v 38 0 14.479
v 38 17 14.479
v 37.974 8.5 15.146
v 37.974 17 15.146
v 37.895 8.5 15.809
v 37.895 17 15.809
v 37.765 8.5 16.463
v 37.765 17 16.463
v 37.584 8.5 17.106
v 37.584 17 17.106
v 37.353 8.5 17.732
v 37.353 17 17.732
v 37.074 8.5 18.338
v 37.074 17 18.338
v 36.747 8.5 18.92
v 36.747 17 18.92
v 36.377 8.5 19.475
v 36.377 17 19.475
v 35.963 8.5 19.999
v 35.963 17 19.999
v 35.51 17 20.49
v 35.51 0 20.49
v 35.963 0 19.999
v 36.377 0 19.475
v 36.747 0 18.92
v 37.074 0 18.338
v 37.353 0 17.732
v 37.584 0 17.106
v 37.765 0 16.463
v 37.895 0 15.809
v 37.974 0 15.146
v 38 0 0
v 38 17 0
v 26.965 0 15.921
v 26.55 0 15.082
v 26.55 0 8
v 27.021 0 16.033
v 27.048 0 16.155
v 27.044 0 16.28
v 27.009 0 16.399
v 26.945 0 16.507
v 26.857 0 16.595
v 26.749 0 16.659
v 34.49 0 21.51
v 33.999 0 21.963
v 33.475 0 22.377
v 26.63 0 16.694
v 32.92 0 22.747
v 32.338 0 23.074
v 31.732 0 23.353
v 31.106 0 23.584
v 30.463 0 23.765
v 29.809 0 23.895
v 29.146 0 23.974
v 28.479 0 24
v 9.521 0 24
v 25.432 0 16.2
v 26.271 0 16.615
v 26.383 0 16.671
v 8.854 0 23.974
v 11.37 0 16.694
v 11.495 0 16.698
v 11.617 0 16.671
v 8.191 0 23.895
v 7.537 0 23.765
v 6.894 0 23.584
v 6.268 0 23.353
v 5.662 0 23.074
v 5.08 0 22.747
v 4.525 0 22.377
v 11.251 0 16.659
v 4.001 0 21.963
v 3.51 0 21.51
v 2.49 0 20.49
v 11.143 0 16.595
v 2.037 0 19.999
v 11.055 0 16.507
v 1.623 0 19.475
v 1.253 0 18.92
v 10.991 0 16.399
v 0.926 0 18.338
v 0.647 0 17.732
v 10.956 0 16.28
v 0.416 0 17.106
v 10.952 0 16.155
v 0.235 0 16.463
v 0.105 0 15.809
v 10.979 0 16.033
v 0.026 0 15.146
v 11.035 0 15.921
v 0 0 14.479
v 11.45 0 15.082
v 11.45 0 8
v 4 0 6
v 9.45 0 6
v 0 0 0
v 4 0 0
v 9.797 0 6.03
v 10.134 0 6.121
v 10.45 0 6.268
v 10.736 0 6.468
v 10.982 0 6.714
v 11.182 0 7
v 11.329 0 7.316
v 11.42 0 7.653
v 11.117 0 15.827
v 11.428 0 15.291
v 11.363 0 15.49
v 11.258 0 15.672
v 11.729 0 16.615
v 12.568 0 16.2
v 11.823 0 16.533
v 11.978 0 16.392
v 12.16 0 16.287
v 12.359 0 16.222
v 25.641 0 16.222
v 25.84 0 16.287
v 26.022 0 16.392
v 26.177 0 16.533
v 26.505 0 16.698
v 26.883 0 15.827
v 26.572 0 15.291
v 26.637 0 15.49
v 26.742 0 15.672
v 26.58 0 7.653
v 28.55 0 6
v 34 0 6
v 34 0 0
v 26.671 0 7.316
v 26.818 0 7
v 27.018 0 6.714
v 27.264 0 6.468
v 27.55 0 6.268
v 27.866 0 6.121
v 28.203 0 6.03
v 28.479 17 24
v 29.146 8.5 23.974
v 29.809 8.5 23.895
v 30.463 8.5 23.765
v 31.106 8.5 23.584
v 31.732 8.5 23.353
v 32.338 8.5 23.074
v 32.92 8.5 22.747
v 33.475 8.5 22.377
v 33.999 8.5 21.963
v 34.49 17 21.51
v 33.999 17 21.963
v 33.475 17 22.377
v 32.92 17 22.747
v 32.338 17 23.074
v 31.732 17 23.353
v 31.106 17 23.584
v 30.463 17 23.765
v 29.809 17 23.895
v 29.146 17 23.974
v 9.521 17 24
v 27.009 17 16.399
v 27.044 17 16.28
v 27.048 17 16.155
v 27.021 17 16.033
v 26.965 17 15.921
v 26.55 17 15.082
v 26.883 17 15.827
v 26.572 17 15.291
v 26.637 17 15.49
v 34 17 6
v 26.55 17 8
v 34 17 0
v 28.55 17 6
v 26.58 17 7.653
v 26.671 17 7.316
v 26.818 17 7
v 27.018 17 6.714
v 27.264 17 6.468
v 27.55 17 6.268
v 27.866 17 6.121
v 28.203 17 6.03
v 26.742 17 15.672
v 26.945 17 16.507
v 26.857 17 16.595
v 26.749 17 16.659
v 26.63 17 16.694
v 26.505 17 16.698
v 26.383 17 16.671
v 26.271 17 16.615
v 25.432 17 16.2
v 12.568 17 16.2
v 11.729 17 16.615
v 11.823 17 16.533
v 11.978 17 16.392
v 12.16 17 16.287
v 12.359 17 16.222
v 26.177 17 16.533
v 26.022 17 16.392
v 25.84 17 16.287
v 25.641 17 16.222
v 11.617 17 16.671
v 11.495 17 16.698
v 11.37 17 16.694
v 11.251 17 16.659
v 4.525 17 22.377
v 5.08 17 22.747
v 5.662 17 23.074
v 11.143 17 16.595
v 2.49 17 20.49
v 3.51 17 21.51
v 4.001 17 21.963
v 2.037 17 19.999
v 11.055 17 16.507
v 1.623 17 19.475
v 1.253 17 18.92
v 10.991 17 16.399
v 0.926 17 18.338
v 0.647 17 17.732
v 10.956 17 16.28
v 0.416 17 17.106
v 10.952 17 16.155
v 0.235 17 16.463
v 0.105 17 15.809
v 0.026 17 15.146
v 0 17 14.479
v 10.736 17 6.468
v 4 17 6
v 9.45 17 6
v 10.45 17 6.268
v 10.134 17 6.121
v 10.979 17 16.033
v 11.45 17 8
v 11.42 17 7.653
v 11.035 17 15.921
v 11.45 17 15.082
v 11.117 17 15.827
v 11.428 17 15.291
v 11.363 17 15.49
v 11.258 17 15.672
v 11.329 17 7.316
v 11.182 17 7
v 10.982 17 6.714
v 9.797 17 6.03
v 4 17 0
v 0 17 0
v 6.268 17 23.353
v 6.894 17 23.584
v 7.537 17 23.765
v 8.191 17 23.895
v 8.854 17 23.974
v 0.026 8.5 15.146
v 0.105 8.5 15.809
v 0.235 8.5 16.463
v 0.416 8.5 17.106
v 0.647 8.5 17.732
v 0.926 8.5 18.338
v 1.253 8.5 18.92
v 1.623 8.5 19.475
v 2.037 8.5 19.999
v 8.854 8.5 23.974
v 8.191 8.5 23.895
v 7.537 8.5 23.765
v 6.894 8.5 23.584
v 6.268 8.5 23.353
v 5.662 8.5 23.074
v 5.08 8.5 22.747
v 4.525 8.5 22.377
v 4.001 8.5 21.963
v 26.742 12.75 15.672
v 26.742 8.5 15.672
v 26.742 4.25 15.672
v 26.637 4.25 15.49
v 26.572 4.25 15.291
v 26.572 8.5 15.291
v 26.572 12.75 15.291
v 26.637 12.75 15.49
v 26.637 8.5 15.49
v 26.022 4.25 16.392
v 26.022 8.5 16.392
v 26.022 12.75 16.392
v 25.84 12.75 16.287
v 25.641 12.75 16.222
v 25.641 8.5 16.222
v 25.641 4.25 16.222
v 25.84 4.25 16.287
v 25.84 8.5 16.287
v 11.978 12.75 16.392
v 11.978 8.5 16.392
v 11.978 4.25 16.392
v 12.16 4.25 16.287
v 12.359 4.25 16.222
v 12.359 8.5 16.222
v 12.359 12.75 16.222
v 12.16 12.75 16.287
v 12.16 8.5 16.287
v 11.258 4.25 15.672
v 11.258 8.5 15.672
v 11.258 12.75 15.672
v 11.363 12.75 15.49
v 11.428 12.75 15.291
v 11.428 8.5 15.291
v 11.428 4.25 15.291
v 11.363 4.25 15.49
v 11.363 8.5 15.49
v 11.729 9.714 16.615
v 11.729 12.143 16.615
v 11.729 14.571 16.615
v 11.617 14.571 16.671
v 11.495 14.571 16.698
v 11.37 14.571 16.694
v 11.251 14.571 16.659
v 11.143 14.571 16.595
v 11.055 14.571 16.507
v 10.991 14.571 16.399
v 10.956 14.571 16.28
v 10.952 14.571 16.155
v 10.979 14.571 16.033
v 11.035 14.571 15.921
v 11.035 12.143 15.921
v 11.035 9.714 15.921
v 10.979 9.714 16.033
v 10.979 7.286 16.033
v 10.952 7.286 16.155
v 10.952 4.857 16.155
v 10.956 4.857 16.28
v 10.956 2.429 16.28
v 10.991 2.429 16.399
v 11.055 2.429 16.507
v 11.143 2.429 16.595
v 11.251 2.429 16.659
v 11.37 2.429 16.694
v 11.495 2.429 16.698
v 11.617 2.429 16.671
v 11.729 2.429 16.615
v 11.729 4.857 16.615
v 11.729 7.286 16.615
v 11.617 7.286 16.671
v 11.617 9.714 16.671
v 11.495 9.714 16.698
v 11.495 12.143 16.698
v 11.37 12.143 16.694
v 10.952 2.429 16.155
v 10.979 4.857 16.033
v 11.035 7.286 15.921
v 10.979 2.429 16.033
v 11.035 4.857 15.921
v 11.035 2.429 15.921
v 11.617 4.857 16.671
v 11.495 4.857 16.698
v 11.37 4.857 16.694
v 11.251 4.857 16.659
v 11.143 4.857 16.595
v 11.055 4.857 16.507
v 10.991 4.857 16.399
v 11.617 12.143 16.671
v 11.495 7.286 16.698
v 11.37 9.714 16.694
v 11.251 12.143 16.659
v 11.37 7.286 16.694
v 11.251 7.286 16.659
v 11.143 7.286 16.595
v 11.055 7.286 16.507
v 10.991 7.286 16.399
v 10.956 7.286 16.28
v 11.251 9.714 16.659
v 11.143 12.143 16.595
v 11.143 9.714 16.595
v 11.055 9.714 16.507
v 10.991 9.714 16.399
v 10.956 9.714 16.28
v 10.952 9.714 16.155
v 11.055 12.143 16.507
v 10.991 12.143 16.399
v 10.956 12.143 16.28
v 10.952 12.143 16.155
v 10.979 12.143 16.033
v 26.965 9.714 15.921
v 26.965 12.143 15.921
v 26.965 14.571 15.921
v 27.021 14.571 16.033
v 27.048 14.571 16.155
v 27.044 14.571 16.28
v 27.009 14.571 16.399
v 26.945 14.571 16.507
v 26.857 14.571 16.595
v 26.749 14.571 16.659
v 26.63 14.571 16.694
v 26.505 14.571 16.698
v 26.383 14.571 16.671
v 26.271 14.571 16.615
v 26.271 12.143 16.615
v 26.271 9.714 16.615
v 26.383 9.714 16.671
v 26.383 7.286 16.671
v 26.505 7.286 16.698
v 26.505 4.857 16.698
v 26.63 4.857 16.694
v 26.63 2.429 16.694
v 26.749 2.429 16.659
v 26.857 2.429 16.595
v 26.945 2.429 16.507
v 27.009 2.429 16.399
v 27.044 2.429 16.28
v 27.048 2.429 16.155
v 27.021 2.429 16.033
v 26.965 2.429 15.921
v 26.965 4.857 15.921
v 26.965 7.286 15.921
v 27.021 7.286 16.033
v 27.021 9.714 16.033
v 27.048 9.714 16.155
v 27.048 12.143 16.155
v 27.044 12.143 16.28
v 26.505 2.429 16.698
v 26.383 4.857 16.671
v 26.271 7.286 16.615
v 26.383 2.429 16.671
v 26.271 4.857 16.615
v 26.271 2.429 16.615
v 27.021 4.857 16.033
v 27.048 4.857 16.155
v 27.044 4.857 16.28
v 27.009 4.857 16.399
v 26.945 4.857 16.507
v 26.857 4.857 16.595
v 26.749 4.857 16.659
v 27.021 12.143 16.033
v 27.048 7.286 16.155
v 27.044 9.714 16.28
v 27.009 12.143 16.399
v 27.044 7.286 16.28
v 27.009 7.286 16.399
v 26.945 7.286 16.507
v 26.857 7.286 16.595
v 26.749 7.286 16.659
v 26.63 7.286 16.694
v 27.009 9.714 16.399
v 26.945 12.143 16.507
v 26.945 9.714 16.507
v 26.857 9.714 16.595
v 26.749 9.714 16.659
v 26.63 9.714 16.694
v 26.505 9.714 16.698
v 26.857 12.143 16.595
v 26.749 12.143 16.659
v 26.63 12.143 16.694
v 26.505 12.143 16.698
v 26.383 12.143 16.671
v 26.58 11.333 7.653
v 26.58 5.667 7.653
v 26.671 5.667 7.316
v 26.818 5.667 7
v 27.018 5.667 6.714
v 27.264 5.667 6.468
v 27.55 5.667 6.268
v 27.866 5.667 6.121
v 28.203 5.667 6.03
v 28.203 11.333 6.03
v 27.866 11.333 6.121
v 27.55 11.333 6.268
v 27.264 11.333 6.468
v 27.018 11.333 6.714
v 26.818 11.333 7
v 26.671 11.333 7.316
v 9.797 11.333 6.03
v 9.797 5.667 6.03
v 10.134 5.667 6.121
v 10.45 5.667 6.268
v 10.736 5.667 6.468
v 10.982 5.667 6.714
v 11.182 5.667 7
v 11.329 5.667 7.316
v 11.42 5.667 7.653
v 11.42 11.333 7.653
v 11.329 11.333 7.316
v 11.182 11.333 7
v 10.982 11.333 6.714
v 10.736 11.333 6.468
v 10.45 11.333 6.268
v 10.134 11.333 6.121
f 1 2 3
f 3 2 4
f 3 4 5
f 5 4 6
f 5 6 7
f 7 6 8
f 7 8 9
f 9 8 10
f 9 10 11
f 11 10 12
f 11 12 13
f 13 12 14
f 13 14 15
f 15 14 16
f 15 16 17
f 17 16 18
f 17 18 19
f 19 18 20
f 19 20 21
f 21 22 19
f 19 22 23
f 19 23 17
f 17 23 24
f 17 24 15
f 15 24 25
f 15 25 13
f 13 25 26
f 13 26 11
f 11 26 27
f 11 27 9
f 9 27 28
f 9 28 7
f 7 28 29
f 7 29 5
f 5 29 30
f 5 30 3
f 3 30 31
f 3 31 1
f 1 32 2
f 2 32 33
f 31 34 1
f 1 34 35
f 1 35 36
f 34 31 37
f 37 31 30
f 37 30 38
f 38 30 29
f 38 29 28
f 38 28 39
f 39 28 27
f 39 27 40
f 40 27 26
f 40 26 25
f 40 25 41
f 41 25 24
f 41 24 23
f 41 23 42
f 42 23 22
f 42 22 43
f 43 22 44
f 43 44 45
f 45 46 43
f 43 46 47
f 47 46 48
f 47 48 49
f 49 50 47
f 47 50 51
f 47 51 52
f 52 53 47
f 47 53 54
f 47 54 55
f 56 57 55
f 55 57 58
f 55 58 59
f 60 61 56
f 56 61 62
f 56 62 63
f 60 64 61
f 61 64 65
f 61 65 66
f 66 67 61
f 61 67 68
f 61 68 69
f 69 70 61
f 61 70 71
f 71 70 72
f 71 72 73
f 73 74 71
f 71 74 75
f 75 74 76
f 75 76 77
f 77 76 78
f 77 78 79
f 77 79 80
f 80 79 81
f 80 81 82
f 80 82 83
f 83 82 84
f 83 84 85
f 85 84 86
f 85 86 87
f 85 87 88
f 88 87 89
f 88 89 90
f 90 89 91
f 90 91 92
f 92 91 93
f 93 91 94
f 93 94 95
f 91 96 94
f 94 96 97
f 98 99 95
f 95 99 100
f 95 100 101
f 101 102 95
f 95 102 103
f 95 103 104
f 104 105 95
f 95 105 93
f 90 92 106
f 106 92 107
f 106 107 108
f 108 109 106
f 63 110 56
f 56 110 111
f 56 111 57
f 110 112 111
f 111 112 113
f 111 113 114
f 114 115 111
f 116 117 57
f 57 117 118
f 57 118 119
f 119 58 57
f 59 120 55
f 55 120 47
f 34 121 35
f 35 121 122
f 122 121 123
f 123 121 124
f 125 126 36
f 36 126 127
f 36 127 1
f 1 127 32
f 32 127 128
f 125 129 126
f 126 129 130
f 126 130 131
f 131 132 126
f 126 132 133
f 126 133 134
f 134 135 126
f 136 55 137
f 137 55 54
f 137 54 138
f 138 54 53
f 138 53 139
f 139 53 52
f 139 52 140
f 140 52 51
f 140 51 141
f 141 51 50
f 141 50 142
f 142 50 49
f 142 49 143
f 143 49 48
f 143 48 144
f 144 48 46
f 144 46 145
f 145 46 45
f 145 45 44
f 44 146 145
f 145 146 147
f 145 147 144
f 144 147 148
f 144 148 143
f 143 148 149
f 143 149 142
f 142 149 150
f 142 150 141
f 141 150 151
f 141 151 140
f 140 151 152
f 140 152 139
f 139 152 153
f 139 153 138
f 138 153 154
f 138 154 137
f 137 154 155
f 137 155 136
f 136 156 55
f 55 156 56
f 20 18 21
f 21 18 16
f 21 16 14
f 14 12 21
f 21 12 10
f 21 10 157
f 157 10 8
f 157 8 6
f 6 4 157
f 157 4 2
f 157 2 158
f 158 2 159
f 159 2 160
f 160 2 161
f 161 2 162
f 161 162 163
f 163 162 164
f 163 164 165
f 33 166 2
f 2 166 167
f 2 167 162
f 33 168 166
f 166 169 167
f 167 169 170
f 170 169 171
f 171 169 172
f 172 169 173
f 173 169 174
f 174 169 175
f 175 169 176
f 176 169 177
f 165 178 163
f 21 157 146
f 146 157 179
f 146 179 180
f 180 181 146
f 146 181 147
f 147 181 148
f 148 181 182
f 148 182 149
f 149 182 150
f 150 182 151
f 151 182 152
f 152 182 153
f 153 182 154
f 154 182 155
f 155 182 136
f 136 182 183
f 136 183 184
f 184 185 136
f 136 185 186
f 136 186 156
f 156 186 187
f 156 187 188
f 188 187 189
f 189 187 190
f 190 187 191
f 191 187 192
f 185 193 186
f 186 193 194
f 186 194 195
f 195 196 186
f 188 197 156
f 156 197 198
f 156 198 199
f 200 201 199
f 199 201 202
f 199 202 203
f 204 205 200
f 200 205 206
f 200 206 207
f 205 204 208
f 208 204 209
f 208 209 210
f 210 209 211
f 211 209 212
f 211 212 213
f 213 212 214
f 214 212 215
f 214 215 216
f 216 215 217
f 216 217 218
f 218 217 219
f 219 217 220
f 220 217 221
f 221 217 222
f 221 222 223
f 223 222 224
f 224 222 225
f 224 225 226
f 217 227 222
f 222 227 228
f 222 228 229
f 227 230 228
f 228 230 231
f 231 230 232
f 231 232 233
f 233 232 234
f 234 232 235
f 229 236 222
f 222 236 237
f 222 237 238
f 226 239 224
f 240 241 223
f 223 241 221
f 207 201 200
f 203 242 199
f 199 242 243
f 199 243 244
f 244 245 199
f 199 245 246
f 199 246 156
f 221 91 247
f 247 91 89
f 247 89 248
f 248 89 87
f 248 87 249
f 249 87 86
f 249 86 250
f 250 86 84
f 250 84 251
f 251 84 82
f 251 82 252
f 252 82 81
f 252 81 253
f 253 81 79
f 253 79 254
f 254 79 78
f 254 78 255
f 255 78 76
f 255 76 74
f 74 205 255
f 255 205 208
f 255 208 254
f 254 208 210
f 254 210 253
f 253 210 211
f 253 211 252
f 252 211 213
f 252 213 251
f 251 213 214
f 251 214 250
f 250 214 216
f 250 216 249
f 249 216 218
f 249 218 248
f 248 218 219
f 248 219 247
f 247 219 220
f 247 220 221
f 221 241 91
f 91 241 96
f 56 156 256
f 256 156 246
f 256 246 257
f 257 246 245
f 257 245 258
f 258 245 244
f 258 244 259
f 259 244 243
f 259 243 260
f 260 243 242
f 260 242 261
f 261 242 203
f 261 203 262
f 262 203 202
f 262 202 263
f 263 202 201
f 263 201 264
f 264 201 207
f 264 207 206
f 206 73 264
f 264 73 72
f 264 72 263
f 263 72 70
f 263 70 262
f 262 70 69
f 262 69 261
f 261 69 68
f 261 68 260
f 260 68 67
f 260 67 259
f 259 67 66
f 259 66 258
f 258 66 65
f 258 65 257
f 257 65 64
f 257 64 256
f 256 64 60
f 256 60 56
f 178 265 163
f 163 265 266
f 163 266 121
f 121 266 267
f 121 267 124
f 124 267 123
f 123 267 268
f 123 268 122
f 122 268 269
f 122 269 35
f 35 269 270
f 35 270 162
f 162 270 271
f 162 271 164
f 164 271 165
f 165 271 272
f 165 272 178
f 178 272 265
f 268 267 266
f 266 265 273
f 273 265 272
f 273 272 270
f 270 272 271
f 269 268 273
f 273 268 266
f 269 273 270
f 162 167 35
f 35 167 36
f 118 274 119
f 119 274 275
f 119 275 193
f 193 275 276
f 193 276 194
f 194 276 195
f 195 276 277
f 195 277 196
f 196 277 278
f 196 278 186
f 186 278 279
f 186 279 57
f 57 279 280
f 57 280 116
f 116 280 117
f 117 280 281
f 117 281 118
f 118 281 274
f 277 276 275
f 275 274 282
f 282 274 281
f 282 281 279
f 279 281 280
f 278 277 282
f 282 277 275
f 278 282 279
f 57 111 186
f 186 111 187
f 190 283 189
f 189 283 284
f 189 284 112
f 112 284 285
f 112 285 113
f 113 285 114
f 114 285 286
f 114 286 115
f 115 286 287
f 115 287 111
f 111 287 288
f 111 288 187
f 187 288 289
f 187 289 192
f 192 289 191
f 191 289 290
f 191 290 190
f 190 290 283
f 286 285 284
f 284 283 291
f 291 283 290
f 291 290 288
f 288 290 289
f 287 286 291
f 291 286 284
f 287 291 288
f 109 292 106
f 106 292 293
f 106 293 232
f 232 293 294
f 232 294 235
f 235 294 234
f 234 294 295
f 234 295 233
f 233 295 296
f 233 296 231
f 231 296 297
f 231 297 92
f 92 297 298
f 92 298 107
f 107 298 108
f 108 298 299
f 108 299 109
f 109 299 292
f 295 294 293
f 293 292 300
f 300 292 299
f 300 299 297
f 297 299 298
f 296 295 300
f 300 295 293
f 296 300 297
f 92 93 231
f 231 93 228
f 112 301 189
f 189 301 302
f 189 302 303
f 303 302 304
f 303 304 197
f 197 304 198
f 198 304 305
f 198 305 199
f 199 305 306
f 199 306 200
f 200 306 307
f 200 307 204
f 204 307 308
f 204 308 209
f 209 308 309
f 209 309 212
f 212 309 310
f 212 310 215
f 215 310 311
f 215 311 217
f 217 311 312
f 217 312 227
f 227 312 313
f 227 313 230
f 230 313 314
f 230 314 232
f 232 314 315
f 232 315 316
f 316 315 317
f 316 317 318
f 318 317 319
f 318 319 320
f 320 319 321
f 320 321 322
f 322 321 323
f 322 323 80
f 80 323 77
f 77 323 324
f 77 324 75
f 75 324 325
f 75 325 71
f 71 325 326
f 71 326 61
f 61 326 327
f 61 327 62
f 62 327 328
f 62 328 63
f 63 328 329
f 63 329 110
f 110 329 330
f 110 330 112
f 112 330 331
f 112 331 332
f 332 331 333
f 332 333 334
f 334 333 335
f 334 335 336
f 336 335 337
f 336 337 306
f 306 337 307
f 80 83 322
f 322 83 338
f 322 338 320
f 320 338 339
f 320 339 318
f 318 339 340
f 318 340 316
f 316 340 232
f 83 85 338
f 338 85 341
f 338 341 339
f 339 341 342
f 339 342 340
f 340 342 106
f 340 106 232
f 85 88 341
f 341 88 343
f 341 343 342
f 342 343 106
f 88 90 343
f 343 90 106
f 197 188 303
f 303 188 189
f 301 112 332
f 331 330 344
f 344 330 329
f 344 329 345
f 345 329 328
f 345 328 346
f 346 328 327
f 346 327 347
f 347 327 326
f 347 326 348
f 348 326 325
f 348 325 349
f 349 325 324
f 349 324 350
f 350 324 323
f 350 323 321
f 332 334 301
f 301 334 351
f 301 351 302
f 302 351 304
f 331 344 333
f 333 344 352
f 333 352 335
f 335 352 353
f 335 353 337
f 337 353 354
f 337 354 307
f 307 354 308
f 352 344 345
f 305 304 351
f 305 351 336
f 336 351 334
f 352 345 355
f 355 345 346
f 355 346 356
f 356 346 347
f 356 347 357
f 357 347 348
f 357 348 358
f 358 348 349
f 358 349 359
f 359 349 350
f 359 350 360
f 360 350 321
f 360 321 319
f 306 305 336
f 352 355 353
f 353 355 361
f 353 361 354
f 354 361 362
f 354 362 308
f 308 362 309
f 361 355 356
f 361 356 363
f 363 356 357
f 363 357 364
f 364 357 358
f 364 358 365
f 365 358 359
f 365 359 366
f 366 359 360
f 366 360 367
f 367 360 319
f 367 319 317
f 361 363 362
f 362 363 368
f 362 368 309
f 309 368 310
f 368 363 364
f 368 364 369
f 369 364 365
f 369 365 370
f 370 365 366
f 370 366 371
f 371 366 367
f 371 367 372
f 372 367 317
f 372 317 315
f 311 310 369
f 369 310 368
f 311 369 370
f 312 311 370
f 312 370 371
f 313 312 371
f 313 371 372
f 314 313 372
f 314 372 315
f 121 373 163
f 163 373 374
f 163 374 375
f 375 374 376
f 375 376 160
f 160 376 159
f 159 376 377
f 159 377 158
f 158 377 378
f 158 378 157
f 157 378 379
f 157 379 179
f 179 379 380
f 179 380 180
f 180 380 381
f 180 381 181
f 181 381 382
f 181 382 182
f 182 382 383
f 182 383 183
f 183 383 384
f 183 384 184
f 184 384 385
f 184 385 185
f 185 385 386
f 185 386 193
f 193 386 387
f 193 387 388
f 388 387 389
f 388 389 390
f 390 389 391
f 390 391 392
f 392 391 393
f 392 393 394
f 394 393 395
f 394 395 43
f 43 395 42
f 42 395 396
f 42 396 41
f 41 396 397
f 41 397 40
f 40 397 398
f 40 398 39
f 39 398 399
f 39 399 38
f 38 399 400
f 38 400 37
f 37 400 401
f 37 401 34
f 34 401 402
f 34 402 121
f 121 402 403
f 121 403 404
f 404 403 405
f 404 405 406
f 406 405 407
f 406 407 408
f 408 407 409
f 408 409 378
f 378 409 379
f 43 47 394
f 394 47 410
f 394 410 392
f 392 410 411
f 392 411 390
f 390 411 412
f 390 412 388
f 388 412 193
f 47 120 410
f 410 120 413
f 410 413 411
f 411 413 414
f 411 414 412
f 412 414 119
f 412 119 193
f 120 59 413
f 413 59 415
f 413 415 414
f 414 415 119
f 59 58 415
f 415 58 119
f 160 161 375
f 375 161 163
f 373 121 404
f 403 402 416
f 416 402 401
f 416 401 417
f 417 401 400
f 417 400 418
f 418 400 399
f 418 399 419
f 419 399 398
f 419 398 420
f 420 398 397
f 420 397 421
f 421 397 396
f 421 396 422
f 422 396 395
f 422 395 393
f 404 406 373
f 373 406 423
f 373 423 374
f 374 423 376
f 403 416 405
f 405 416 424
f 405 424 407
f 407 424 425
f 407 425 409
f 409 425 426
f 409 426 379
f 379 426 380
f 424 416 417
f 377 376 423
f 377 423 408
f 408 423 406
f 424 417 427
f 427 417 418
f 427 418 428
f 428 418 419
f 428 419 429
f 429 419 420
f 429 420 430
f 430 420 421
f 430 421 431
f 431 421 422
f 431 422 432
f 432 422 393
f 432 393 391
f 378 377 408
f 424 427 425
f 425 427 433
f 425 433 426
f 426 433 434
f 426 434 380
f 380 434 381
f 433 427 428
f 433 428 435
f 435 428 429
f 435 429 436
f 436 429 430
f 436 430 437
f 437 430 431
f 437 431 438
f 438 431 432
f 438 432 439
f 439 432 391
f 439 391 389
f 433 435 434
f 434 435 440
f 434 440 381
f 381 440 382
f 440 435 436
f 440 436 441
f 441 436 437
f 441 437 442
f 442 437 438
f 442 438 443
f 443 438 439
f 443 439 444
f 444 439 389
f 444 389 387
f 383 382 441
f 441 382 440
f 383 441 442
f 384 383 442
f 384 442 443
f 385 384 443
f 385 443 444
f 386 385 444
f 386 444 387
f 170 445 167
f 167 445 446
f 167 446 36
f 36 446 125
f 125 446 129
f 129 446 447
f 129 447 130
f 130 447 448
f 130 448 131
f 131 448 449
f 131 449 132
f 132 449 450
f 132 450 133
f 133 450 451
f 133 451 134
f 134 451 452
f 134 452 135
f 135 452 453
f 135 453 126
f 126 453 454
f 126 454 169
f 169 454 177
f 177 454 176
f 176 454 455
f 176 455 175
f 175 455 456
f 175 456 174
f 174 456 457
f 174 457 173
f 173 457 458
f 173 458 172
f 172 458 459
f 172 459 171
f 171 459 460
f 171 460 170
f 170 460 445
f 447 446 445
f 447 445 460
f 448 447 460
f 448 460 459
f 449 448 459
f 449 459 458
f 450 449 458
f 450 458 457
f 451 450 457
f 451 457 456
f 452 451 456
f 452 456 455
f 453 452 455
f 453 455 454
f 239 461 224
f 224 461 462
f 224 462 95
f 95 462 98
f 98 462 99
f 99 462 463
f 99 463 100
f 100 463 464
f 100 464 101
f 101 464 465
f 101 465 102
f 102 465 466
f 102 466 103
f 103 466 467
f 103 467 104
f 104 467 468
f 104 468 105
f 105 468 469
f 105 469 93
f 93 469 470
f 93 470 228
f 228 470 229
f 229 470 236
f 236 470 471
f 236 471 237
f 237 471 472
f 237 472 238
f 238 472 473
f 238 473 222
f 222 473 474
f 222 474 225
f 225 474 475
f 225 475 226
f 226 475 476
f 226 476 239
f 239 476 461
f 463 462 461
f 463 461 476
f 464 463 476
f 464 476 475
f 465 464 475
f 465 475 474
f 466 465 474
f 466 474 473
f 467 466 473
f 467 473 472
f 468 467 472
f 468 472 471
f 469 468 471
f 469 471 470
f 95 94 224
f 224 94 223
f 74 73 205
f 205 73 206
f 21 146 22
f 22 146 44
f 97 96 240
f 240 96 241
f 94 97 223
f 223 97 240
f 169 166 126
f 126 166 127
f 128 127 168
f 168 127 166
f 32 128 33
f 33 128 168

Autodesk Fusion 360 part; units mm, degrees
sketch "Sketch1" plane through (0, 0, 0) normal (0, 1, 0) x (1, 0, 0)
  line L0 (0, 0) -> (4, 0)
  line L1 (4, 0) -> (4, -6)
  line L2 (4, -6) -> (11.45, -6)
  line L3 (11.45, -6) -> (11.45, -16.2)
  line L4 (11.45, -16.2) -> (26.55, -16.2)
  line L5 (26.55, -16.2) -> (26.55, -6)
  line L6 (26.55, -6) -> (34, -6)
  line L7 (34, -6) -> (34, 0)
  line L8 (34, 0) -> (38, 0)
  line L9 (38, 0) -> (38, -24)
  line L10 (38, -24) -> (0, -24)
  line L11 (0, -24) -> (0, 0)
  dimension "d1" = 15.1
  dimension "d2" = 10.2
  dimension "d3" = 30
  dimension "d4" = 6
  dimension "d5" = 4
  dimension "d6" = 24
extrude "Extrude1" add sketch "Sketch1" along normal blind 17
chamfer "Chamfer1" distance 6 distance2 6 2 edges at (38, 8.5, 24) (0, 8.5, 24) measured on face at (25.3333, 5.6667, 24) measured on face at (0, 5.6667, 16)
fillet "Fillet1" radius 2 2 edges at (11.45, 8.5, 6) (26.55, 8.5, 6)
sketch "Sketch2" plane through (0, 0, 0) normal (0, -1, 0) x (1, 0, 0)
  arc A0 (26.55, 8) -> (28.55, 6) centre (28.55, 8) ccw
  line L0 (28.55, 6) -> (34, 6)
  line L1 (34, 6) -> (34, 0)
  line L2 (34, 0) -> (38, 0)
  line L3 (38, 0) -> (38, 18)
  line L4 (38, 18) -> (32, 24)
  line L5 (32, 24) -> (6, 24)
  line L6 (6, 24) -> (0, 18)
  line L7 (0, 18) -> (0, 0)
  line L8 (0, 0) -> (4, 0)
  line L9 (4, 0) -> (4, 6)
  line L10 (4, 6) -> (9.45, 6)
  arc A1 (9.45, 6) -> (11.45, 8) centre (9.45, 8) ccw
  line L11 (11.45, 8) -> (11.45, 16.2)
  line L12 (11.45, 16.2) -> (26.55, 16.2)
  line L13 (26.55, 16.2) -> (26.55, 8)
  circle A2 centre (11.45, 16.2) radius 0.5
  circle A3 centre (26.55, 16.2) radius 0.5
  dimension "d13" = 1
  dimension "d14" = 1
extrude "Extrude2" cut sketch "Sketch2" against normal through all contours L12 L13 A3 | L11 L12 A2 picked at (26.2406, 16.3214) picked at (11.3772, 15.8756)
fillet "Fillet2" radius 1 4 edges at (11.45, 8.5, 15.7) (11.95, 8.5, 16.2) (26.05, 8.5, 16.2) (26.55, 8.5, 15.7)
fillet "Fillet5" radius 8.5 4 edges at (6, 8.5, 24) (0, 8.5, 18) (32, 8.5, 24) (38, 8.5, 18)
